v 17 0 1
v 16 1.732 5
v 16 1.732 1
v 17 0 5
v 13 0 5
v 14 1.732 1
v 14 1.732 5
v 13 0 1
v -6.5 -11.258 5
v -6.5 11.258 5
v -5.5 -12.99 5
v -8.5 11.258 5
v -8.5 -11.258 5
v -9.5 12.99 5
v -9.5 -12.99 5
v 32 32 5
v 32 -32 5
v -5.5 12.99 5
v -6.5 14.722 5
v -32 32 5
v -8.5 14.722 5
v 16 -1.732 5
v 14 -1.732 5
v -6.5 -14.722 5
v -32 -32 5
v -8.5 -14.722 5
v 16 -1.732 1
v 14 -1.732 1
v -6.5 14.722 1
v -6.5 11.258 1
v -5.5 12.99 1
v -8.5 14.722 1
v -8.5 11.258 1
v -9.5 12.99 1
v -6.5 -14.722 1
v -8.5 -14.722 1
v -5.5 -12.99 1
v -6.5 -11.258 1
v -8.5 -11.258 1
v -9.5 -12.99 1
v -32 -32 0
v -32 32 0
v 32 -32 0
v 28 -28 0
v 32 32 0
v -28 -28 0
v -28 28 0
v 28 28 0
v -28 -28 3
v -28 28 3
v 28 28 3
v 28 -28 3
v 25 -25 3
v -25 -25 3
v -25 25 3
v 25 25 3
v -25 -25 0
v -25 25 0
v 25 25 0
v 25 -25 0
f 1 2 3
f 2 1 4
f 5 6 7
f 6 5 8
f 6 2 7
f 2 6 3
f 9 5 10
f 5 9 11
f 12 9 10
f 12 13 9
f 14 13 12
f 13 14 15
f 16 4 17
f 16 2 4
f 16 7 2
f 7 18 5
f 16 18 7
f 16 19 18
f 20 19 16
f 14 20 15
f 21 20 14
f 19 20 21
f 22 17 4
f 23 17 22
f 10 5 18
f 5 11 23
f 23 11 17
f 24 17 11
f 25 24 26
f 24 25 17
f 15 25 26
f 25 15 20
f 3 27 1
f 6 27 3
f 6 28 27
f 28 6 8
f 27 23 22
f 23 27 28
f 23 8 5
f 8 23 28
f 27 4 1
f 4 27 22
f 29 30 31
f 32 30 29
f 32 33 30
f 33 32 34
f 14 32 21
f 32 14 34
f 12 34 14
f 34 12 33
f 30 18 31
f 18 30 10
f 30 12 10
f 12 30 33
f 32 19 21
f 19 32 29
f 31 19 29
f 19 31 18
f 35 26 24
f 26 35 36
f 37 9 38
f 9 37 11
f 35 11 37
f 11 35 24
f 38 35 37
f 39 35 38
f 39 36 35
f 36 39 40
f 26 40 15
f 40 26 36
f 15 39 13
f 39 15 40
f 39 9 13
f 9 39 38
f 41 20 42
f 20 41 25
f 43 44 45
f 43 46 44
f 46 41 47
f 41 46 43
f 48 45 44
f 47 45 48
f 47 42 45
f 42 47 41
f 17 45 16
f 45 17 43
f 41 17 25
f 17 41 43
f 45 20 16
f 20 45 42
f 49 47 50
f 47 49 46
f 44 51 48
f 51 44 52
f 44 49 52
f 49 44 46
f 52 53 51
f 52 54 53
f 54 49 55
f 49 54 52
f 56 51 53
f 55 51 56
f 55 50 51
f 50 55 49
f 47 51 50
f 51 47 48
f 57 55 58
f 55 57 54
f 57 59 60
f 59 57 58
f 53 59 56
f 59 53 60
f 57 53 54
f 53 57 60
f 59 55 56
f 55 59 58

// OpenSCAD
// file: shapes/roundedcube.scad
// More information: https://danielupshaw.com/openscad-rounded-corners/

// Set to 0.01 for higher definition curves (renders slower)
//$fs = 0.15;

module roundedcube(size = [1, 1, 1], center = false, radius = 0.5, apply_to = "all") {
	// If single value, convert to [x, y, z] vector
	size = (size[0] == undef) ? [size, size, size] : size;

	translate_min = radius;
	translate_xmax = size[0] - radius;
	translate_ymax = size[1] - radius;
	translate_zmax = size[2] - radius;

	diameter = radius * 2;

	obj_translate = (center == false) ?
		[0, 0, 0] : [
			-(size[0] / 2),
			-(size[1] / 2),
			-(size[2] / 2)
		];

	translate(v = obj_translate) {
		hull() {
			for (translate_x = [translate_min, translate_xmax]) {
				x_at = (translate_x == translate_min) ? "min" : "max";
				for (translate_y = [translate_min, translate_ymax]) {
					y_at = (translate_y == translate_min) ? "min" : "max";
					for (translate_z = [translate_min, translate_zmax]) {
						z_at = (translate_z == translate_min) ? "min" : "max";

						translate(v = [translate_x, translate_y, translate_z])
						if (
							(apply_to == "all") ||
							(apply_to == "xmin" && x_at == "min") || (apply_to == "xmax" && x_at == "max") ||
							(apply_to == "ymin" && y_at == "min") || (apply_to == "ymax" && y_at == "max") ||
							(apply_to == "zmin" && z_at == "min") || (apply_to == "zmax" && z_at == "max")
						) {
							sphere(r = radius);
						} else {
							rotate = 
								(apply_to == "xmin" || apply_to == "xmax" || apply_to == "x") ? [0, 90, 0] : (
								(apply_to == "ymin" || apply_to == "ymax" || apply_to == "y") ? [90, 90, 0] :
								[0, 0, 0]
							);
							rotate(a = rotate)
							cylinder(h = diameter, r = radius, center = true);
						}
					}
				}
			}
		}
	}
}
// main file
 include <shapes/roundedcube.scad>

$fn=6;
//$fn=100;

PictureSize = [50,50,5];  
Padding = 7;

PaddingBorderWidth = 3;
PaddingBorderDepth = 3;


MagnetsCount = 3;
MagnetsOffcenterShift = 15;

MagnetDiameter = 4;
MagnetDepth = 4;




// Simple flat frame for magnetic picture for a fridge



module base() {
    cube(PictureSize, center=true);

    difference() {

        cube([
            PictureSize.x+ Padding*2,
            PictureSize.y+ Padding*2,
            PictureSize.z
        ], center=true);

        /*/
        difference() {
            cube([
                PictureSize.x+ Padding*2,
                PictureSize.y+ Padding*2,
                PictureSize.z
            ], center=true);

            translate([PictureSize.x/2+Padding,PictureSize.y/2+Padding,0]) {
                cylinder(h=10,r=10);
            }
        }
        /**/

        /*/
        roundedcube(
            size = [
                PictureSize.x+ Padding*2,
                PictureSize.y+ Padding*2,
                PictureSize.z
            ],
            center = true,
            radius = 5,
            apply_to = "z"
        )
        /**/
        
    


    
        translate([0,0,PictureSize.z-PaddingBorderDepth]) {
            cube([
                PictureSize.x+PaddingBorderWidth*2,
                PictureSize.y+PaddingBorderWidth*2,
                PictureSize.z


            ], center=true);
        }

    }
}

module basePlaced() {
    translate([0,0,PictureSize.z/2]) {
        rotate([180,0,0]) {
            base();
        }
    }
}

module magnetCenteredPlaced() {
    translate([0,0,PictureSize.z-MagnetDepth]) {
        cylinder(h=MagnetDepth,r=MagnetDiameter/2);  
    }
}


module main() {
    difference() {
        basePlaced();

        for (i = [0:1:MagnetsCount]) { 
            rotate([0,0,(i/MagnetsCount)*360]) {
                translate([MagnetsOffcenterShift,0,0]) {
                    magnetCenteredPlaced();
                }
            }
        }


       
       
    }
}




main();
